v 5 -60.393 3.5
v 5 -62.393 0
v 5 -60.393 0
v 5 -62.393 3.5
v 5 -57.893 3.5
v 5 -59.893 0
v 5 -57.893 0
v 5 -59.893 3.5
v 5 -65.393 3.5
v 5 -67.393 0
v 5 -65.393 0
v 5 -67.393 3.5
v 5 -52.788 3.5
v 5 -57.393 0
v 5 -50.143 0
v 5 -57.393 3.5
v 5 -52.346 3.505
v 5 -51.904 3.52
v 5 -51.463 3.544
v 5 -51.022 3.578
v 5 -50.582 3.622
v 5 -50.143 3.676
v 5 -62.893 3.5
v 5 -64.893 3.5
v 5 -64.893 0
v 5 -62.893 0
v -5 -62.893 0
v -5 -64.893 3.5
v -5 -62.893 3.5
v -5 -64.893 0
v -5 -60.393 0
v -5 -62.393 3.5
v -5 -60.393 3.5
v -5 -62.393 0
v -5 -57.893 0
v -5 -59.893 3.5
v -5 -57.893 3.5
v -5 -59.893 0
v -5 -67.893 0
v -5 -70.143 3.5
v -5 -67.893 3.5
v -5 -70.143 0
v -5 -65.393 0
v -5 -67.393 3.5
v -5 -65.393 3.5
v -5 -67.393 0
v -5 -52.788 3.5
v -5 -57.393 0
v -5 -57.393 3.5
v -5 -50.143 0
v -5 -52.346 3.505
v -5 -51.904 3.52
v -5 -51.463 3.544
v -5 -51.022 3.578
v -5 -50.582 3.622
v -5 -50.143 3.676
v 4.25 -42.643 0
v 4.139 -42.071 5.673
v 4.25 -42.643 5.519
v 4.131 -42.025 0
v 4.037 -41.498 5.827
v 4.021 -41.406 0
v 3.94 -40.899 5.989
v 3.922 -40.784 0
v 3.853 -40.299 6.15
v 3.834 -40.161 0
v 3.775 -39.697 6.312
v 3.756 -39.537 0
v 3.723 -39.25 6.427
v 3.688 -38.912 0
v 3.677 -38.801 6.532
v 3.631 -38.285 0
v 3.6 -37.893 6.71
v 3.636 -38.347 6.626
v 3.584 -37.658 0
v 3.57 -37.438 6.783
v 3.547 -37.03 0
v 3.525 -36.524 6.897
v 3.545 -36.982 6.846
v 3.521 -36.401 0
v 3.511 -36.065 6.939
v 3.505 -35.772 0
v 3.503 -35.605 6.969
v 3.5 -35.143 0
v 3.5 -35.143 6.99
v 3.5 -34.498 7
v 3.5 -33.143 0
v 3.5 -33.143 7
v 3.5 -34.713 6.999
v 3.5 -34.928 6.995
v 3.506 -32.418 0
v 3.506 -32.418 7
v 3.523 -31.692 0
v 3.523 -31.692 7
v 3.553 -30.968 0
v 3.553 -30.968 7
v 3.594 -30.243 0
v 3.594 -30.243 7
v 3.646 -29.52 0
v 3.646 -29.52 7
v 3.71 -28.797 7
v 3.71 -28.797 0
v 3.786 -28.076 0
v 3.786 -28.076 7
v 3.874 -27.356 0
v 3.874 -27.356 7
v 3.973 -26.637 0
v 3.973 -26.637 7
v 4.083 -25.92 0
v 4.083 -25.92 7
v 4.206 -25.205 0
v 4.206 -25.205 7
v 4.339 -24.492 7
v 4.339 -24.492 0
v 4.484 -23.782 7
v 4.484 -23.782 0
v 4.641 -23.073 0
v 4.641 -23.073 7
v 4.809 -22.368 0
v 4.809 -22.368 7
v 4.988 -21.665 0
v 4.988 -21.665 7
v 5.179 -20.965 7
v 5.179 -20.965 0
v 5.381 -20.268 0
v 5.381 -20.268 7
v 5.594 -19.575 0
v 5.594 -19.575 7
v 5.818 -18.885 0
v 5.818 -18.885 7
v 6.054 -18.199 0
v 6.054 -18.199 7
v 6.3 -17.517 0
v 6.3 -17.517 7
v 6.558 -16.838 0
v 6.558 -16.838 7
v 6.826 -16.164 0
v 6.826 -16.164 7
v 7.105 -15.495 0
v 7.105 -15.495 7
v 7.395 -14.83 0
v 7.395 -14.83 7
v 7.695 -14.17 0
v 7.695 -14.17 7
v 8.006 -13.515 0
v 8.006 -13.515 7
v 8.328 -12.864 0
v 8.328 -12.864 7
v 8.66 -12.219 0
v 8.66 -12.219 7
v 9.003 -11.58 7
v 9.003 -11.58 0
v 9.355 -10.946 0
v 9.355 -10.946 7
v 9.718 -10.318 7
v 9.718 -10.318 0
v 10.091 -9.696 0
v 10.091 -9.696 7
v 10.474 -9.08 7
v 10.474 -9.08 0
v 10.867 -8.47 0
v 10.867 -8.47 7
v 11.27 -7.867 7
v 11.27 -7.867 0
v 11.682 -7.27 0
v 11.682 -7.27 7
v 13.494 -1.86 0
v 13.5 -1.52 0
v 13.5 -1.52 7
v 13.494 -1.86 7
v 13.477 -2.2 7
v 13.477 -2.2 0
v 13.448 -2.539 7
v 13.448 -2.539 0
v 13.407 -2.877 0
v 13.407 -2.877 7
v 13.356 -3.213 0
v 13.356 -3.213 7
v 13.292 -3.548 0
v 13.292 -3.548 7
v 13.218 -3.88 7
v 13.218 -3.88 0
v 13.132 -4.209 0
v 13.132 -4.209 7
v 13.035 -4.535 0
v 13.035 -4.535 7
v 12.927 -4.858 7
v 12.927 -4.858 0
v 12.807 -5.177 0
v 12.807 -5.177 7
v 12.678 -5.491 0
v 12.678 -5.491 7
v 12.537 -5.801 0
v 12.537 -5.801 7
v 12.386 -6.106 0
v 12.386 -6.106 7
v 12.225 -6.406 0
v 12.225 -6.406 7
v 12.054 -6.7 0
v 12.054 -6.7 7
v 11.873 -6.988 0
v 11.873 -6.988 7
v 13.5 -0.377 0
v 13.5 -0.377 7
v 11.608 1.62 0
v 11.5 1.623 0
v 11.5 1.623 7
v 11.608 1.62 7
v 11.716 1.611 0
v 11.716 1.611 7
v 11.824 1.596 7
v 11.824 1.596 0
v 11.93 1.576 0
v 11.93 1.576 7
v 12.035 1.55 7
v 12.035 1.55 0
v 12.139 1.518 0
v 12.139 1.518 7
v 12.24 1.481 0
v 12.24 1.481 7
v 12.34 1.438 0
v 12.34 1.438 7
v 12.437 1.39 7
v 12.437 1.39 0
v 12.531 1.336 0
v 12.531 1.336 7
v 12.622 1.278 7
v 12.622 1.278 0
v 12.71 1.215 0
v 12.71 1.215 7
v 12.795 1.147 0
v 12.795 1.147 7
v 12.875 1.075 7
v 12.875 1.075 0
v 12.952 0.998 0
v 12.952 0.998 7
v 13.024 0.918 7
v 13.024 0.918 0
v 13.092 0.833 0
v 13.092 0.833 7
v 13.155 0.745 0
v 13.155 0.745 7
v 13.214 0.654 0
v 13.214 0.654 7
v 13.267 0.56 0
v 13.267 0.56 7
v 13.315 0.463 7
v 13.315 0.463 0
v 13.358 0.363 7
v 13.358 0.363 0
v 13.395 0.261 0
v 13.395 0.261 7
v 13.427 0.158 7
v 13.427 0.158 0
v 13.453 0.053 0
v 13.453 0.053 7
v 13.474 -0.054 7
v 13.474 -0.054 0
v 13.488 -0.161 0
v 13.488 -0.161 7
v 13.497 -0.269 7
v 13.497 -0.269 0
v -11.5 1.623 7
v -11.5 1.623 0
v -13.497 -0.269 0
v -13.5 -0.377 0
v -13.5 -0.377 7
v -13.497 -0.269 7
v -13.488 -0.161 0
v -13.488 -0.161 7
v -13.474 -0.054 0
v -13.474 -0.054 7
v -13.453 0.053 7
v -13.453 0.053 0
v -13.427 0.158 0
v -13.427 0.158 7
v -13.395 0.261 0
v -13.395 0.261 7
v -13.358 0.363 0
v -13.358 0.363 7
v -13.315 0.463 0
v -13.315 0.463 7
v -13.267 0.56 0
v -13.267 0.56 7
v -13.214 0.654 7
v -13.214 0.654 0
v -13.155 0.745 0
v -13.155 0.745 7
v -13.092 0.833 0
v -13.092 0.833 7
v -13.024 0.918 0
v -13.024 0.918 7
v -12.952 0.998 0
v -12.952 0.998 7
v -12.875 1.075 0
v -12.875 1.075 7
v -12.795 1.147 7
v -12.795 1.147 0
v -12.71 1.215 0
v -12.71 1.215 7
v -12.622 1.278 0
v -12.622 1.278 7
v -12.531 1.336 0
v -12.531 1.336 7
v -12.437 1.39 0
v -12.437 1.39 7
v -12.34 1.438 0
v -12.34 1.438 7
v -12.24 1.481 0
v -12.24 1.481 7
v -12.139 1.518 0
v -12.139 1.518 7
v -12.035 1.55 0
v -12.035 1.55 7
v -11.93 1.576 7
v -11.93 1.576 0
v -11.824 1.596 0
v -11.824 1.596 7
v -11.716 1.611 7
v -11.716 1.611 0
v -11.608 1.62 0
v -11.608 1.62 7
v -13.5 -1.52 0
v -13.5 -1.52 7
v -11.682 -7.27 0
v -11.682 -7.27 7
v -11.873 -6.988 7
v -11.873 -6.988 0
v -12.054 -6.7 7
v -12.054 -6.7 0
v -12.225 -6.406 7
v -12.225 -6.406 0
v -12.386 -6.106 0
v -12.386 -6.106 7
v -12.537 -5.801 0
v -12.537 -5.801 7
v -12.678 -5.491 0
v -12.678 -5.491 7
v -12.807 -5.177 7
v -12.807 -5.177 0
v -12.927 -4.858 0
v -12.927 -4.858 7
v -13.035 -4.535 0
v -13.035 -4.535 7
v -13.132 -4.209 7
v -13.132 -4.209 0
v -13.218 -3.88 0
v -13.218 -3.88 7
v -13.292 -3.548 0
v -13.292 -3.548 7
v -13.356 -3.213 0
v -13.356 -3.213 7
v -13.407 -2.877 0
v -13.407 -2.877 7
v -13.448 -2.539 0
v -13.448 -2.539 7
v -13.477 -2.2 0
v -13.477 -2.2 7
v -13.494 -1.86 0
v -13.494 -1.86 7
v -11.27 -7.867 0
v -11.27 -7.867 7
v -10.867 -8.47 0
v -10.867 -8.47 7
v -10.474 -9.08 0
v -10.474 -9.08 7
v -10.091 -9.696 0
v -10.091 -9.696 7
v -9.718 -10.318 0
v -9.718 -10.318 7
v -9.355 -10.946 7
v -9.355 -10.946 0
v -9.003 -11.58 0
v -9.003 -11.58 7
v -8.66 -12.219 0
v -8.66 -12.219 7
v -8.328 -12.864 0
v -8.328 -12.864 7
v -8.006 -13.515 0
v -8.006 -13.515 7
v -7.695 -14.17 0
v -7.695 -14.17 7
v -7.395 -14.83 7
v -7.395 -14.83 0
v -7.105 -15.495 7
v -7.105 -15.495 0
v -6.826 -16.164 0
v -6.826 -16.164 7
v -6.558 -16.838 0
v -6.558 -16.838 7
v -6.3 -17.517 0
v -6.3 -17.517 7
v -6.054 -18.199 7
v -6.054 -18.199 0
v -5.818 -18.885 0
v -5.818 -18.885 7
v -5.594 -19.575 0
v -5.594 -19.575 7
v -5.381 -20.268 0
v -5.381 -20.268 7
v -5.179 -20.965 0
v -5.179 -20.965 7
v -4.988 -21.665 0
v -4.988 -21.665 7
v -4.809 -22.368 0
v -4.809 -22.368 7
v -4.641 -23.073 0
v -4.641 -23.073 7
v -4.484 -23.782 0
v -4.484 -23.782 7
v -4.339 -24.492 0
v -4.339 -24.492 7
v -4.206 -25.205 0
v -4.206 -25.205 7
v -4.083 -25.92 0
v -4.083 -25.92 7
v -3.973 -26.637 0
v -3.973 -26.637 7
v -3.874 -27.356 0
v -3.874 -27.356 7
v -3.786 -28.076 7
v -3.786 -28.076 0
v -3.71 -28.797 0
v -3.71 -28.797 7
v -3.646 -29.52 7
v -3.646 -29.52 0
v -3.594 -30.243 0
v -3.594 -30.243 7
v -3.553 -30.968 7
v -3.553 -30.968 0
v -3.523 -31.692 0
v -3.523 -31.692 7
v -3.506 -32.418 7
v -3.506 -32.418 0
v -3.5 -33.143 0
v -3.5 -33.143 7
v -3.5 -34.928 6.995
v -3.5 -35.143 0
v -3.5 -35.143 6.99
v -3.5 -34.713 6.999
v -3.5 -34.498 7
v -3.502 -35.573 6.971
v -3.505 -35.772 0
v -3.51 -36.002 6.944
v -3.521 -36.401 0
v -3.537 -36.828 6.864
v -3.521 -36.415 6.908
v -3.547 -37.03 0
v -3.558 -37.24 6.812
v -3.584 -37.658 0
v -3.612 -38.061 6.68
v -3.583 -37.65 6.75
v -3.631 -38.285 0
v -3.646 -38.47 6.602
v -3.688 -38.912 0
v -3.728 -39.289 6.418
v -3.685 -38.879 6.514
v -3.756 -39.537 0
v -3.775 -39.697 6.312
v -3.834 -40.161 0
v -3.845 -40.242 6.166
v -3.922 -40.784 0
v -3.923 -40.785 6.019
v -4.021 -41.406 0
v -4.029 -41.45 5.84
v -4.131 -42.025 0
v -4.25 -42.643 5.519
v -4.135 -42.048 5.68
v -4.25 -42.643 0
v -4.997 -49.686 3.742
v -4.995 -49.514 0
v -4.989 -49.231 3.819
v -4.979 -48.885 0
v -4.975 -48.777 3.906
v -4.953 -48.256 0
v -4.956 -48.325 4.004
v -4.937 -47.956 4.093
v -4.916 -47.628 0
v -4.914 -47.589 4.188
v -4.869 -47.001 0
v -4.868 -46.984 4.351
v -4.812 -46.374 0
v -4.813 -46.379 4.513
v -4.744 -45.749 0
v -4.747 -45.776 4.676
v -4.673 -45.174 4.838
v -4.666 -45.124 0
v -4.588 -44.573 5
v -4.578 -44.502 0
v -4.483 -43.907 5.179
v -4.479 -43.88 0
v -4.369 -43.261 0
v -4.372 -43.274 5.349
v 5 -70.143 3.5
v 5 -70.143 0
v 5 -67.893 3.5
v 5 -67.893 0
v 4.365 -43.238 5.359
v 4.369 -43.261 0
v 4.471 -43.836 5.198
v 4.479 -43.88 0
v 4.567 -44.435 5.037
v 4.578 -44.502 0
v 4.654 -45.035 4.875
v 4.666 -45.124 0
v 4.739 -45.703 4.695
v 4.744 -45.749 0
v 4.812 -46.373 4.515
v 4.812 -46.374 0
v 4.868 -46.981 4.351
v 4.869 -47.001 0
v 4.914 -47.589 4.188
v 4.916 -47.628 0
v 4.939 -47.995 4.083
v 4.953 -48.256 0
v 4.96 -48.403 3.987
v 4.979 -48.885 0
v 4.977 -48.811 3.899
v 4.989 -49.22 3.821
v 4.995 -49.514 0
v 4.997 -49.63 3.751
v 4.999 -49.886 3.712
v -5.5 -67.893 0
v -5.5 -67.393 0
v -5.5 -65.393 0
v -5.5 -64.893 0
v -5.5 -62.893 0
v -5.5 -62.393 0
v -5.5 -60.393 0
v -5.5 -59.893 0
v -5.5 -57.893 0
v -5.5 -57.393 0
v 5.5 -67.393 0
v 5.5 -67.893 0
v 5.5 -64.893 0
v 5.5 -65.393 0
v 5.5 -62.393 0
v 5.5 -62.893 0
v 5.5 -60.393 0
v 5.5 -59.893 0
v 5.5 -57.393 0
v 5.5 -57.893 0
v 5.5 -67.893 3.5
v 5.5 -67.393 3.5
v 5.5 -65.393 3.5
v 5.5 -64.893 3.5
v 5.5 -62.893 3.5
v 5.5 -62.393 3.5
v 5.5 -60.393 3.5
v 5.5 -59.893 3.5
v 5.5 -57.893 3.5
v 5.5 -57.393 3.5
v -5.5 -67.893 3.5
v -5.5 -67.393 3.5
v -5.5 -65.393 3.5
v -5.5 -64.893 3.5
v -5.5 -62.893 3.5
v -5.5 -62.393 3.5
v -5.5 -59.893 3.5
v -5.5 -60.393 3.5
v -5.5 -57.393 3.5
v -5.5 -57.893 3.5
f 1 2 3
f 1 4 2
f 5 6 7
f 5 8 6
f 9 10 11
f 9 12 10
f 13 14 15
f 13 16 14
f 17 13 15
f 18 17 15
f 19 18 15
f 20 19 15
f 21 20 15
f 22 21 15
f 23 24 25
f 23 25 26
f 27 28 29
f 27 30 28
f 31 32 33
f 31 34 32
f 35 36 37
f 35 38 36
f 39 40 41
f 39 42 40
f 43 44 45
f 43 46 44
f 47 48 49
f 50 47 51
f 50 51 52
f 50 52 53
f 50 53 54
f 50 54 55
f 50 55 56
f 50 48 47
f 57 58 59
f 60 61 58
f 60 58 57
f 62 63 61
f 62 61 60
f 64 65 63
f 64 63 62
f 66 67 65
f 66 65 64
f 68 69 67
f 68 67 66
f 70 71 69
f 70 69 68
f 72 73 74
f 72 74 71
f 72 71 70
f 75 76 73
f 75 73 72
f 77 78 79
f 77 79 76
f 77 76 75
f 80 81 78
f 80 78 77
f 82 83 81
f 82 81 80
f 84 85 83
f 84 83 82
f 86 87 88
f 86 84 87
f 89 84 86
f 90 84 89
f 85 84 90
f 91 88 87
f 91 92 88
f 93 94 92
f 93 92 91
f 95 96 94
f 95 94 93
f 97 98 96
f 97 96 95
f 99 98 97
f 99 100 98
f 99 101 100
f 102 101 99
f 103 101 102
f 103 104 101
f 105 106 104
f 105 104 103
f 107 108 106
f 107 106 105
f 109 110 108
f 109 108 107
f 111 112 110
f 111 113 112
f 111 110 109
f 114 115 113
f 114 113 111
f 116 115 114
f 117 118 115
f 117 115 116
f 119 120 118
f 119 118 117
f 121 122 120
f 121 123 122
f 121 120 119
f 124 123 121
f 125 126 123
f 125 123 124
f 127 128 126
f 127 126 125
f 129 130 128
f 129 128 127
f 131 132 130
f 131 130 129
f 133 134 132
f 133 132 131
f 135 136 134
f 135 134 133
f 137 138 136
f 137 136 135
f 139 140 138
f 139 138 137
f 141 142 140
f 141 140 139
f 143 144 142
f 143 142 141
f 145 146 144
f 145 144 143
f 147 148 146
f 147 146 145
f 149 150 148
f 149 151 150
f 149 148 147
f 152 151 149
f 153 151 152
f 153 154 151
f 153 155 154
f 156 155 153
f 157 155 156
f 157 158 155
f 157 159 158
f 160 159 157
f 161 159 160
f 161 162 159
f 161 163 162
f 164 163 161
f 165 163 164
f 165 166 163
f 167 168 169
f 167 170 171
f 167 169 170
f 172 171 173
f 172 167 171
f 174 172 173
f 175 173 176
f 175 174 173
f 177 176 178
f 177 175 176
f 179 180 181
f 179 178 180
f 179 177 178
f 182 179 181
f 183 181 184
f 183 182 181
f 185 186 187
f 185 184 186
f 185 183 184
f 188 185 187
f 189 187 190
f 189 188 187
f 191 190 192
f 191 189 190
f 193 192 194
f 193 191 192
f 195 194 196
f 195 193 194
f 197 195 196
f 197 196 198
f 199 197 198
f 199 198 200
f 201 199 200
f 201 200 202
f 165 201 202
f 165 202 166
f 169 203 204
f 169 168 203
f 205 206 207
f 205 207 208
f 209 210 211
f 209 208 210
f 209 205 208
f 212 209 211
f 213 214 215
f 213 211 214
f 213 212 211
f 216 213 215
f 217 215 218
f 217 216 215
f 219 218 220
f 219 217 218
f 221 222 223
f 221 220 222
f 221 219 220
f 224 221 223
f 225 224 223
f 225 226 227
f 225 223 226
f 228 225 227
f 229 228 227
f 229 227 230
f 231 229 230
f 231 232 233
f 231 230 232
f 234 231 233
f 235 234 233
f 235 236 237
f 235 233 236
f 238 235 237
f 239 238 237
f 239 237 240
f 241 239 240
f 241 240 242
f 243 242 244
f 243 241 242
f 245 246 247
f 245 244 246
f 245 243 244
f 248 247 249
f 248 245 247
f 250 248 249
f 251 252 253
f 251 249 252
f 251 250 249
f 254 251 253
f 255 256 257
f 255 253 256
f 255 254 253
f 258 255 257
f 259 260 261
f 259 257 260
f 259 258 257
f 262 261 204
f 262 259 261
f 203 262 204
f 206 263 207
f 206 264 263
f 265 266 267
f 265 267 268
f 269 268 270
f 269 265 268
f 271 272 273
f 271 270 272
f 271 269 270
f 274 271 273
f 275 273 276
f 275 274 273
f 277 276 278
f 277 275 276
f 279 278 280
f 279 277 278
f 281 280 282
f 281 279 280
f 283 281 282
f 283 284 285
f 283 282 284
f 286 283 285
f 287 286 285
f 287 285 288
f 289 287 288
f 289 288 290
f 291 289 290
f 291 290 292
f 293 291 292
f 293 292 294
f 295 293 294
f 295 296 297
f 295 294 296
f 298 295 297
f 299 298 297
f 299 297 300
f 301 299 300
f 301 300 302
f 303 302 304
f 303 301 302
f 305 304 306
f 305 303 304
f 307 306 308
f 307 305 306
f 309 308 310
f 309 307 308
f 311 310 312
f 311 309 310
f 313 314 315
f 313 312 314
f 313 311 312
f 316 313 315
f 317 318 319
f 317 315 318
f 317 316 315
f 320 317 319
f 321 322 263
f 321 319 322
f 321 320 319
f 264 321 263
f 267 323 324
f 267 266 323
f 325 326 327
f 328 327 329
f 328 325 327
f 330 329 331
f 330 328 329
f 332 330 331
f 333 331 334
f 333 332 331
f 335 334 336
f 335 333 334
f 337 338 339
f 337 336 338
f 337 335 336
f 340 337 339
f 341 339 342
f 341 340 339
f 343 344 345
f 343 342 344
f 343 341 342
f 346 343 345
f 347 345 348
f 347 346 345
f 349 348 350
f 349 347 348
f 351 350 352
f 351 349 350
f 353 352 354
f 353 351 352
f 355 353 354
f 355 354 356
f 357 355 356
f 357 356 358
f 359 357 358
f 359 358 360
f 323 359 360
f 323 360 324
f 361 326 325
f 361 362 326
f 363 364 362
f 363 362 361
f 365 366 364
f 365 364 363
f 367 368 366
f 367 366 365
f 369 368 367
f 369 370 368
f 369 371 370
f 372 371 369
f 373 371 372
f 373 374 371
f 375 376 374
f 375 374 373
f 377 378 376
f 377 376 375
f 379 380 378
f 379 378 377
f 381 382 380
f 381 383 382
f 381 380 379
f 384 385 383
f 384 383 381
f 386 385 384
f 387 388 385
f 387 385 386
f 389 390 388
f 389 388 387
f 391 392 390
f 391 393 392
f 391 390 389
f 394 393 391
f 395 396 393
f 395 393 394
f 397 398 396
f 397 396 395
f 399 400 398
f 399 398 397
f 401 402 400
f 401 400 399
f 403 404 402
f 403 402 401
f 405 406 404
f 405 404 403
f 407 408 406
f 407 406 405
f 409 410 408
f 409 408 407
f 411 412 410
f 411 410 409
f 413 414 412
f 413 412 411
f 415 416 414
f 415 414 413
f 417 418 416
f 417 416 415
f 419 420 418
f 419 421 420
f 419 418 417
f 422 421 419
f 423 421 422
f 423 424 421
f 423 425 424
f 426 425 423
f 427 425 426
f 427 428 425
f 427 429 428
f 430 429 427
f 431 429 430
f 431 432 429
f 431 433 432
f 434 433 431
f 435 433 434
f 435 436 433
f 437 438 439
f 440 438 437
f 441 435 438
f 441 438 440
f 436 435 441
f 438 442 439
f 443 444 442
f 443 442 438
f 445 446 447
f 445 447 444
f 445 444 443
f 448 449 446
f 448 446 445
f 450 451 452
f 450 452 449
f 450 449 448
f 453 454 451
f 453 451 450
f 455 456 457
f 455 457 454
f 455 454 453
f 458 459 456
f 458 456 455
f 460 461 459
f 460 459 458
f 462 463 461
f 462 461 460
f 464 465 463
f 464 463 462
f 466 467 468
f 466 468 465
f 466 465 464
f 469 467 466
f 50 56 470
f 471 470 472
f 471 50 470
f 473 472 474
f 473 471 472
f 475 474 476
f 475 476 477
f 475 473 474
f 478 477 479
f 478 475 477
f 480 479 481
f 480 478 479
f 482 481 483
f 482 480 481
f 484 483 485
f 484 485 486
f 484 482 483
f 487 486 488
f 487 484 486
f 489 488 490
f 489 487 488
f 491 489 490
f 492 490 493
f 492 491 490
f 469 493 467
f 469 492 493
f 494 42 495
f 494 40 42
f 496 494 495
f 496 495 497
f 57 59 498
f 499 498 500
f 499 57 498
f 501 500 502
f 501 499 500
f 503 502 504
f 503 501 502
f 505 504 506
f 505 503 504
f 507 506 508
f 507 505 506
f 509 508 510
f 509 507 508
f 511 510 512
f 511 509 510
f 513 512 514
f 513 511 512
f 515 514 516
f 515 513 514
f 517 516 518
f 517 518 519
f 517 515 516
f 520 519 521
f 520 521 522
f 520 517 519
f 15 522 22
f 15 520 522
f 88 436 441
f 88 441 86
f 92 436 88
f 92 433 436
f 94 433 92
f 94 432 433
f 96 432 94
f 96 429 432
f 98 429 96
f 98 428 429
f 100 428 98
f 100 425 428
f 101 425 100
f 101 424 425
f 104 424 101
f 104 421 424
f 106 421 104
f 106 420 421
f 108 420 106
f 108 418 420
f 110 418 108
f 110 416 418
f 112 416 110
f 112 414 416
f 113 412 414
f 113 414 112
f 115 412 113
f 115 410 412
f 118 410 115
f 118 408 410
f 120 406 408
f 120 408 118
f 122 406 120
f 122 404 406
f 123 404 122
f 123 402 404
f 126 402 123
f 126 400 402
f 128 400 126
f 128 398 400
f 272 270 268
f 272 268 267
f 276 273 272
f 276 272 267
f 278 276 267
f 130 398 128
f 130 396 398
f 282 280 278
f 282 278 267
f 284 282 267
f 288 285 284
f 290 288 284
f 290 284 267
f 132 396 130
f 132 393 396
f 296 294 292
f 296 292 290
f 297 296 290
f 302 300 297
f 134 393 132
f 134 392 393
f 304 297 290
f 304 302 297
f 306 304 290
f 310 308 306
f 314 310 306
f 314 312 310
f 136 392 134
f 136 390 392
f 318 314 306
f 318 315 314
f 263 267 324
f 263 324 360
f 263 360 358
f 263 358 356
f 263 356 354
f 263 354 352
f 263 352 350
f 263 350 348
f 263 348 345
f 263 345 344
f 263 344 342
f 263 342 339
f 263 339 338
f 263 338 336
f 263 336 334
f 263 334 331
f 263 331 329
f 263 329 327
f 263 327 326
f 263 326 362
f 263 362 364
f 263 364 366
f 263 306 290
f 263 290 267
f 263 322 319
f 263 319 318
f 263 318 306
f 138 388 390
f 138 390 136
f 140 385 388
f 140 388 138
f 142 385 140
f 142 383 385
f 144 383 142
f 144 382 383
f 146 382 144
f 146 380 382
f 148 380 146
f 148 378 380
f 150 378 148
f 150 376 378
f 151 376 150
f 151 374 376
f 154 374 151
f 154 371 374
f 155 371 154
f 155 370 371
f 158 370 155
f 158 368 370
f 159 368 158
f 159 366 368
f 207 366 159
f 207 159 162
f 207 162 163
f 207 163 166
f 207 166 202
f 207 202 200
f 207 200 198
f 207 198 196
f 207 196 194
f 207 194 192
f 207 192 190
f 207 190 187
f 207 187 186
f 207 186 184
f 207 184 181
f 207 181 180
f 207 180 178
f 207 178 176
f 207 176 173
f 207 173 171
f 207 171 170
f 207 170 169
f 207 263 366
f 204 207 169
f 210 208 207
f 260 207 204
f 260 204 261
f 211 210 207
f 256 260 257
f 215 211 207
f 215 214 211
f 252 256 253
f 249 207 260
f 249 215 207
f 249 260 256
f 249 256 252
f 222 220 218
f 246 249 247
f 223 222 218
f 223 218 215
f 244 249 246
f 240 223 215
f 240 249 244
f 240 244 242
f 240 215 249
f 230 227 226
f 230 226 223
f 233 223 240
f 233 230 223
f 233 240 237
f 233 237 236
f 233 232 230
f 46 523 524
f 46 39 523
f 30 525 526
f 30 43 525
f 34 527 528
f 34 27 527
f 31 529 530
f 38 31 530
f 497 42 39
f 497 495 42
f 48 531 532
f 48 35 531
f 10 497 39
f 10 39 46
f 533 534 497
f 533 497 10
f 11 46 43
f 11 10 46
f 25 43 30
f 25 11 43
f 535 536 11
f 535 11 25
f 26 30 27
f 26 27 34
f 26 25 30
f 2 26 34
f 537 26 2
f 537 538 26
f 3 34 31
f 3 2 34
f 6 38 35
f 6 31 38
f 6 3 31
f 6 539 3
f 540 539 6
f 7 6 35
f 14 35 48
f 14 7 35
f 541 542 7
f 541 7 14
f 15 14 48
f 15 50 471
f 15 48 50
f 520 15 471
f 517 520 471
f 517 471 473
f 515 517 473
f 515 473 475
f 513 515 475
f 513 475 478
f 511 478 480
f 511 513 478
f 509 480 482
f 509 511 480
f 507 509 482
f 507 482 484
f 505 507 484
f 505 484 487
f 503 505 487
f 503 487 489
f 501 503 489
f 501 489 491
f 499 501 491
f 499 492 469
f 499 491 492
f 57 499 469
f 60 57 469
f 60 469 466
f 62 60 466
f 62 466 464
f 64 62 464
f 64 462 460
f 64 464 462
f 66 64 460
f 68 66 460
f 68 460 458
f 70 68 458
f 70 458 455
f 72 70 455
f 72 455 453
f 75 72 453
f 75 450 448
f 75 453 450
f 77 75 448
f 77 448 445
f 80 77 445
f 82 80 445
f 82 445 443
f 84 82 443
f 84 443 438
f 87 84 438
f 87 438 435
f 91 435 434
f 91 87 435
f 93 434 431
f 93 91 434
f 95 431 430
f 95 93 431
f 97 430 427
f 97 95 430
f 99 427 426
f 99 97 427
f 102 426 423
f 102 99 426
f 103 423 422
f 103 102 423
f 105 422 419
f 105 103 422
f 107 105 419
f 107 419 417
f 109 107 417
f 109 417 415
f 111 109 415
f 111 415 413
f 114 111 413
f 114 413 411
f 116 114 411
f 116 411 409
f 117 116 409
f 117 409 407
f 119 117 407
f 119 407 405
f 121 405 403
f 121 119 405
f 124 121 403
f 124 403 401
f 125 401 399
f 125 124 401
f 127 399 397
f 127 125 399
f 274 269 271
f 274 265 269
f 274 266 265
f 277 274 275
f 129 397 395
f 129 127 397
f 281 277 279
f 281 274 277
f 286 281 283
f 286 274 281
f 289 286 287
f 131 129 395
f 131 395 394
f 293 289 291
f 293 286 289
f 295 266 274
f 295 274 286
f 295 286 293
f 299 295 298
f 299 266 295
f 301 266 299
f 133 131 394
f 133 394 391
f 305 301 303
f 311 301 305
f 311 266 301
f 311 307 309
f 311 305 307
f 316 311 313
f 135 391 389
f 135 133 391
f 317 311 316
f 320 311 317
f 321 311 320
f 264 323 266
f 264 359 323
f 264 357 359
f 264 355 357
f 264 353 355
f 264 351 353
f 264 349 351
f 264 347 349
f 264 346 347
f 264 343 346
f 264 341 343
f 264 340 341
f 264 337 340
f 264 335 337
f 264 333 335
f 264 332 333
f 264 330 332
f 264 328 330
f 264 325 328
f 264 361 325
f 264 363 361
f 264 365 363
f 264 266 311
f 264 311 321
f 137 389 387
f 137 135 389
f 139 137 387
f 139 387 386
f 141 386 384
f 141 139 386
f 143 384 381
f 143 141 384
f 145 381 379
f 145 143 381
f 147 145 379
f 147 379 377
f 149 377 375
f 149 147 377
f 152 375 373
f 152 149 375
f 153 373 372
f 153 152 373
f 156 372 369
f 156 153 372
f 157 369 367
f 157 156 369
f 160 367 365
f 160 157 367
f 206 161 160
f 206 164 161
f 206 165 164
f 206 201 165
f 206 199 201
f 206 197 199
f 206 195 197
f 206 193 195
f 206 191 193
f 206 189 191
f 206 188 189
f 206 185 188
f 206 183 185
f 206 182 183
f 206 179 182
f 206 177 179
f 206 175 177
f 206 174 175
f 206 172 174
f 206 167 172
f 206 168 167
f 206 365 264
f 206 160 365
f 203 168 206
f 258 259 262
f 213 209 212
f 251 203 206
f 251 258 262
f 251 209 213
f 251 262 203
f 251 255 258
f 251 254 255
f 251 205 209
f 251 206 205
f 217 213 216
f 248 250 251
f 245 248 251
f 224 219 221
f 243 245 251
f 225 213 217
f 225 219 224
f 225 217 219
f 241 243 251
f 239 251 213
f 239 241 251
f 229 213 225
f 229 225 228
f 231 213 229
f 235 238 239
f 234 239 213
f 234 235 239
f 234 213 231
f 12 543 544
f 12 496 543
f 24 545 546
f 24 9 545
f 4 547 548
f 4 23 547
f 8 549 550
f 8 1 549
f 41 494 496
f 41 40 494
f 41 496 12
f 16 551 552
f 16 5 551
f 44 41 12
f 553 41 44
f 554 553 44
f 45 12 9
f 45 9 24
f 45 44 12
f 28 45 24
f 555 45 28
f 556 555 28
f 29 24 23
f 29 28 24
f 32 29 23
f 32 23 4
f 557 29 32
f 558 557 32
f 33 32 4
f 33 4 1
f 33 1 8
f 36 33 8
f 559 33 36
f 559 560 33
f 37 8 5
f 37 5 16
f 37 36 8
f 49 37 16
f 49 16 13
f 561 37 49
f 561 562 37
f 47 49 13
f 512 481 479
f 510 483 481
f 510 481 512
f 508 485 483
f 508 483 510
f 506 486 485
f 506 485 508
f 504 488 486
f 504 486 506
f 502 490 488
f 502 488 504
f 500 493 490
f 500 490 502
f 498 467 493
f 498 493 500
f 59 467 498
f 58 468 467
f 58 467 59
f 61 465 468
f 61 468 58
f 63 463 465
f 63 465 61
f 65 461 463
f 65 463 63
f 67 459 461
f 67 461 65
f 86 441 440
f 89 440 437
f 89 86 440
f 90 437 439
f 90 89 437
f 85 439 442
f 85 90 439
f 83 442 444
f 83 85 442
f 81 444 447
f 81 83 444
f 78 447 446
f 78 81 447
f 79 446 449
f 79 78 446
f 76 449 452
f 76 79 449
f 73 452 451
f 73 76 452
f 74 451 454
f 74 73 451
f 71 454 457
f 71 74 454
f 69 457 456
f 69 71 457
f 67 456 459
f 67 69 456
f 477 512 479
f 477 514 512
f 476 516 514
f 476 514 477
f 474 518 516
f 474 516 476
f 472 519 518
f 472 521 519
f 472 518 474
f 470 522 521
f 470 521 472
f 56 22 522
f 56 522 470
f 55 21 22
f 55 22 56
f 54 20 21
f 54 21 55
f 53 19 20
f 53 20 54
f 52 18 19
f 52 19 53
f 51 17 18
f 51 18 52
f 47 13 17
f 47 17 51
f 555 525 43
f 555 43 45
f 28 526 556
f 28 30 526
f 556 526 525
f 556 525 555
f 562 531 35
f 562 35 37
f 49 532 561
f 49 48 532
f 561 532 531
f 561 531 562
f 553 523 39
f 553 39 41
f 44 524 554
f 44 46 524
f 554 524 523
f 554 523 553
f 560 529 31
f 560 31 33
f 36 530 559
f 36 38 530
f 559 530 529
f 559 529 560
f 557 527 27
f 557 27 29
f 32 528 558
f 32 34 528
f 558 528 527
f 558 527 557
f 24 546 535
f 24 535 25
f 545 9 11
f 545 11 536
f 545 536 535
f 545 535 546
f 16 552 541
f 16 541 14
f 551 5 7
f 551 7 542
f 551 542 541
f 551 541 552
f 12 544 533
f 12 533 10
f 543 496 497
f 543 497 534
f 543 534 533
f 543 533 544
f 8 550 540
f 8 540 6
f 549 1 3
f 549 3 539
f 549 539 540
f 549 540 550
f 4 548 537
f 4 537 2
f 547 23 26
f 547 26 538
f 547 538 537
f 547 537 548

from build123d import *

# Parameters (mm, degrees)
BOSS_EXTRUDE1_DEPTH     = 7
CUT_EXTRUDE4_DEPTH      = 72.7723837
CUT_EXTRUDE4_DEPTH_BACK = 72.7723837
FILLET2_R               = 20
SKETCH5_W               = 3.5
SKETCH5_H               = 0.5
BOSS_EXTRUDE2_DEPTH     = 0.5


with BuildPart() as part:
    # Sketch1 → Boss-Extrude1 (new body)
    with BuildSketch(Plane.XY):
        with BuildLine():
            Line((-5, -50.142890317), (-5, -70.142890317))
            Line((-5, -70.142890317), (5, -70.142890317))
            Line((5, -70.142890317), (5, -50.142890317))
            ThreePointArc((5, -50.142890317), (4.812033579, -46.374186959), (4.25, -42.642890317))
            ThreePointArc((4.25, -42.642890317), (3.687966421, -38.911593674), (3.5, -35.142890317))
            Line((3.5, -35.142890317), (3.5, -33.142890317))
            ThreePointArc((3.5, -33.142890317), (5.594183484, -19.574879811), (11.681818182, -7.269709461))
            ThreePointArc((11.681818182, -7.269709461), (13.034625892, -4.535227161), (13.5, -1.520113715))
            Line((13.5, -1.520113715), (13.5, -0.377223398))
            ThreePointArc((13.5, -0.377223398), (12.914213562, 1.036990164), (11.5, 1.622776602))
            Line((11.5, 1.622776602), (-11.5, 1.622776602))
            ThreePointArc((-11.5, 1.622776602), (-12.914213562, 1.036990164), (-13.5, -0.377223398))
            Line((-13.5, -0.377223398), (-13.5, -1.520113715))
            ThreePointArc((-13.5, -1.520113715), (-13.034625892, -4.535227161), (-11.681818182, -7.269709461))
            ThreePointArc((-11.681818182, -7.269709461), (-5.594183484, -19.574879811), (-3.5, -33.142890317))
            Line((-3.5, -33.142890317), (-3.5, -35.142890317))
            ThreePointArc((-3.5, -35.142890317), (-3.687966421, -38.911593674), (-4.25, -42.642890317))
            ThreePointArc((-4.25, -42.642890317), (-4.812033579, -46.374186959), (-5, -50.142890317))
        make_face()
    extrude(amount=BOSS_EXTRUDE1_DEPTH)

    # Sketch4 → Cut-Extrude4 (cut, two sides: drawn at the far end of the back side and taken through both)
    with BuildSketch(Plane(origin=(0, 0, 0), x_dir=(0, 0, -1), z_dir=(1, 0, 0)).offset(-CUT_EXTRUDE4_DEPTH_BACK)):
        Polygon((-3.5, -70.142890317), (-3.5, -50.142890317), (-7, -37.142890317), (-7, -70.142890317), align=None)
    extrude(amount=CUT_EXTRUDE4_DEPTH + CUT_EXTRUDE4_DEPTH_BACK, mode=Mode.SUBTRACT)

    # Fillet2
    fillet2_edges = [part.edges().sort_by_distance(p)[0] for p in [
        (0, -37.142890317, 7),
        (0, -50.142890317, 3.5),
    ]]
    fillet(fillet2_edges, radius=FILLET2_R)

    # Sketch5 → Boss-Extrude2 (add)
    with BuildSketch(Plane.ZY.offset(5)):
        with Locations((1.75, -65.142890317)):
            Rectangle(SKETCH5_W, SKETCH5_H)
        with Locations((1.75, -62.642890317)):
            Rectangle(SKETCH5_W, SKETCH5_H)
        with Locations((1.75, -60.142890317)):
            Rectangle(SKETCH5_W, SKETCH5_H)
        with Locations((1.75, -67.642890317)):
            Rectangle(SKETCH5_W, SKETCH5_H)
        with Locations((1.75, -57.642890317)):
            Rectangle(SKETCH5_W, SKETCH5_H)
    boss_extrude2 = extrude(amount=BOSS_EXTRUDE2_DEPTH)

    # Mirror1: Boss-Extrude2 across plane
    add(boss_extrude2.mirror(Plane(origin=(0, 0, 0), x_dir=(0, 0, 1), z_dir=(1, 0, 0))))


solid = part.part
